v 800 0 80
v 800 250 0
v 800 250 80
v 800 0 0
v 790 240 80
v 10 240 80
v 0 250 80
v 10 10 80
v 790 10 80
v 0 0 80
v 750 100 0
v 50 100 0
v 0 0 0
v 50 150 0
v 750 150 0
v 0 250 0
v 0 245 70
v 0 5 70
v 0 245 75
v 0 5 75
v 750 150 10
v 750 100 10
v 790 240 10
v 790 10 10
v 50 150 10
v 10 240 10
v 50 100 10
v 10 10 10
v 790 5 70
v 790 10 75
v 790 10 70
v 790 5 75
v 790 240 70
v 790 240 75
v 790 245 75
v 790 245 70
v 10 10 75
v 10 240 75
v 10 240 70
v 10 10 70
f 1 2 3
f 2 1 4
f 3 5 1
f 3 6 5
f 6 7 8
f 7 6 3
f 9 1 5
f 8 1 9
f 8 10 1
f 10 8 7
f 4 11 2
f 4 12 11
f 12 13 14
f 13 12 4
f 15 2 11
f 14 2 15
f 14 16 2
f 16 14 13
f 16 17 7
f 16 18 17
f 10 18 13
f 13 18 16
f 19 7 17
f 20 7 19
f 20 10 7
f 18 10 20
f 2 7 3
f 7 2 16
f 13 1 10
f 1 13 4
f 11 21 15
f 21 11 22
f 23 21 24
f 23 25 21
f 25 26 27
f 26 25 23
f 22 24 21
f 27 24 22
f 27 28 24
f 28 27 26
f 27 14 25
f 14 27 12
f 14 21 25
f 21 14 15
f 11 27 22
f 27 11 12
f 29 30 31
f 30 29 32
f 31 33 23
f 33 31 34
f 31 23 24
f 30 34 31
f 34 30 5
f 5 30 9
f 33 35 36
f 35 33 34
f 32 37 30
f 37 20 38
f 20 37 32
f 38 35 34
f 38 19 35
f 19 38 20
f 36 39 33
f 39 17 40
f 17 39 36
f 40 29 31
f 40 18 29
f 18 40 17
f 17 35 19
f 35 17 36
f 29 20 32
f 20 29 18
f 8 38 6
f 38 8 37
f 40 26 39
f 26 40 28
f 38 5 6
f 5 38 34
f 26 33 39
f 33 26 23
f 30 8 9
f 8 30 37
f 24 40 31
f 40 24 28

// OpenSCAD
$fn=20;
difference() {
    cube([800,250,80]); //base frame
    translate([50,100,0]){
        # cube([700,50,10]);
        } // slit
    translate([0,5,70]){
       cube([790,240,5]);
    } //slider
    translate([10,10,10]){
        cube([780,230,70]);
    } // depot
}
